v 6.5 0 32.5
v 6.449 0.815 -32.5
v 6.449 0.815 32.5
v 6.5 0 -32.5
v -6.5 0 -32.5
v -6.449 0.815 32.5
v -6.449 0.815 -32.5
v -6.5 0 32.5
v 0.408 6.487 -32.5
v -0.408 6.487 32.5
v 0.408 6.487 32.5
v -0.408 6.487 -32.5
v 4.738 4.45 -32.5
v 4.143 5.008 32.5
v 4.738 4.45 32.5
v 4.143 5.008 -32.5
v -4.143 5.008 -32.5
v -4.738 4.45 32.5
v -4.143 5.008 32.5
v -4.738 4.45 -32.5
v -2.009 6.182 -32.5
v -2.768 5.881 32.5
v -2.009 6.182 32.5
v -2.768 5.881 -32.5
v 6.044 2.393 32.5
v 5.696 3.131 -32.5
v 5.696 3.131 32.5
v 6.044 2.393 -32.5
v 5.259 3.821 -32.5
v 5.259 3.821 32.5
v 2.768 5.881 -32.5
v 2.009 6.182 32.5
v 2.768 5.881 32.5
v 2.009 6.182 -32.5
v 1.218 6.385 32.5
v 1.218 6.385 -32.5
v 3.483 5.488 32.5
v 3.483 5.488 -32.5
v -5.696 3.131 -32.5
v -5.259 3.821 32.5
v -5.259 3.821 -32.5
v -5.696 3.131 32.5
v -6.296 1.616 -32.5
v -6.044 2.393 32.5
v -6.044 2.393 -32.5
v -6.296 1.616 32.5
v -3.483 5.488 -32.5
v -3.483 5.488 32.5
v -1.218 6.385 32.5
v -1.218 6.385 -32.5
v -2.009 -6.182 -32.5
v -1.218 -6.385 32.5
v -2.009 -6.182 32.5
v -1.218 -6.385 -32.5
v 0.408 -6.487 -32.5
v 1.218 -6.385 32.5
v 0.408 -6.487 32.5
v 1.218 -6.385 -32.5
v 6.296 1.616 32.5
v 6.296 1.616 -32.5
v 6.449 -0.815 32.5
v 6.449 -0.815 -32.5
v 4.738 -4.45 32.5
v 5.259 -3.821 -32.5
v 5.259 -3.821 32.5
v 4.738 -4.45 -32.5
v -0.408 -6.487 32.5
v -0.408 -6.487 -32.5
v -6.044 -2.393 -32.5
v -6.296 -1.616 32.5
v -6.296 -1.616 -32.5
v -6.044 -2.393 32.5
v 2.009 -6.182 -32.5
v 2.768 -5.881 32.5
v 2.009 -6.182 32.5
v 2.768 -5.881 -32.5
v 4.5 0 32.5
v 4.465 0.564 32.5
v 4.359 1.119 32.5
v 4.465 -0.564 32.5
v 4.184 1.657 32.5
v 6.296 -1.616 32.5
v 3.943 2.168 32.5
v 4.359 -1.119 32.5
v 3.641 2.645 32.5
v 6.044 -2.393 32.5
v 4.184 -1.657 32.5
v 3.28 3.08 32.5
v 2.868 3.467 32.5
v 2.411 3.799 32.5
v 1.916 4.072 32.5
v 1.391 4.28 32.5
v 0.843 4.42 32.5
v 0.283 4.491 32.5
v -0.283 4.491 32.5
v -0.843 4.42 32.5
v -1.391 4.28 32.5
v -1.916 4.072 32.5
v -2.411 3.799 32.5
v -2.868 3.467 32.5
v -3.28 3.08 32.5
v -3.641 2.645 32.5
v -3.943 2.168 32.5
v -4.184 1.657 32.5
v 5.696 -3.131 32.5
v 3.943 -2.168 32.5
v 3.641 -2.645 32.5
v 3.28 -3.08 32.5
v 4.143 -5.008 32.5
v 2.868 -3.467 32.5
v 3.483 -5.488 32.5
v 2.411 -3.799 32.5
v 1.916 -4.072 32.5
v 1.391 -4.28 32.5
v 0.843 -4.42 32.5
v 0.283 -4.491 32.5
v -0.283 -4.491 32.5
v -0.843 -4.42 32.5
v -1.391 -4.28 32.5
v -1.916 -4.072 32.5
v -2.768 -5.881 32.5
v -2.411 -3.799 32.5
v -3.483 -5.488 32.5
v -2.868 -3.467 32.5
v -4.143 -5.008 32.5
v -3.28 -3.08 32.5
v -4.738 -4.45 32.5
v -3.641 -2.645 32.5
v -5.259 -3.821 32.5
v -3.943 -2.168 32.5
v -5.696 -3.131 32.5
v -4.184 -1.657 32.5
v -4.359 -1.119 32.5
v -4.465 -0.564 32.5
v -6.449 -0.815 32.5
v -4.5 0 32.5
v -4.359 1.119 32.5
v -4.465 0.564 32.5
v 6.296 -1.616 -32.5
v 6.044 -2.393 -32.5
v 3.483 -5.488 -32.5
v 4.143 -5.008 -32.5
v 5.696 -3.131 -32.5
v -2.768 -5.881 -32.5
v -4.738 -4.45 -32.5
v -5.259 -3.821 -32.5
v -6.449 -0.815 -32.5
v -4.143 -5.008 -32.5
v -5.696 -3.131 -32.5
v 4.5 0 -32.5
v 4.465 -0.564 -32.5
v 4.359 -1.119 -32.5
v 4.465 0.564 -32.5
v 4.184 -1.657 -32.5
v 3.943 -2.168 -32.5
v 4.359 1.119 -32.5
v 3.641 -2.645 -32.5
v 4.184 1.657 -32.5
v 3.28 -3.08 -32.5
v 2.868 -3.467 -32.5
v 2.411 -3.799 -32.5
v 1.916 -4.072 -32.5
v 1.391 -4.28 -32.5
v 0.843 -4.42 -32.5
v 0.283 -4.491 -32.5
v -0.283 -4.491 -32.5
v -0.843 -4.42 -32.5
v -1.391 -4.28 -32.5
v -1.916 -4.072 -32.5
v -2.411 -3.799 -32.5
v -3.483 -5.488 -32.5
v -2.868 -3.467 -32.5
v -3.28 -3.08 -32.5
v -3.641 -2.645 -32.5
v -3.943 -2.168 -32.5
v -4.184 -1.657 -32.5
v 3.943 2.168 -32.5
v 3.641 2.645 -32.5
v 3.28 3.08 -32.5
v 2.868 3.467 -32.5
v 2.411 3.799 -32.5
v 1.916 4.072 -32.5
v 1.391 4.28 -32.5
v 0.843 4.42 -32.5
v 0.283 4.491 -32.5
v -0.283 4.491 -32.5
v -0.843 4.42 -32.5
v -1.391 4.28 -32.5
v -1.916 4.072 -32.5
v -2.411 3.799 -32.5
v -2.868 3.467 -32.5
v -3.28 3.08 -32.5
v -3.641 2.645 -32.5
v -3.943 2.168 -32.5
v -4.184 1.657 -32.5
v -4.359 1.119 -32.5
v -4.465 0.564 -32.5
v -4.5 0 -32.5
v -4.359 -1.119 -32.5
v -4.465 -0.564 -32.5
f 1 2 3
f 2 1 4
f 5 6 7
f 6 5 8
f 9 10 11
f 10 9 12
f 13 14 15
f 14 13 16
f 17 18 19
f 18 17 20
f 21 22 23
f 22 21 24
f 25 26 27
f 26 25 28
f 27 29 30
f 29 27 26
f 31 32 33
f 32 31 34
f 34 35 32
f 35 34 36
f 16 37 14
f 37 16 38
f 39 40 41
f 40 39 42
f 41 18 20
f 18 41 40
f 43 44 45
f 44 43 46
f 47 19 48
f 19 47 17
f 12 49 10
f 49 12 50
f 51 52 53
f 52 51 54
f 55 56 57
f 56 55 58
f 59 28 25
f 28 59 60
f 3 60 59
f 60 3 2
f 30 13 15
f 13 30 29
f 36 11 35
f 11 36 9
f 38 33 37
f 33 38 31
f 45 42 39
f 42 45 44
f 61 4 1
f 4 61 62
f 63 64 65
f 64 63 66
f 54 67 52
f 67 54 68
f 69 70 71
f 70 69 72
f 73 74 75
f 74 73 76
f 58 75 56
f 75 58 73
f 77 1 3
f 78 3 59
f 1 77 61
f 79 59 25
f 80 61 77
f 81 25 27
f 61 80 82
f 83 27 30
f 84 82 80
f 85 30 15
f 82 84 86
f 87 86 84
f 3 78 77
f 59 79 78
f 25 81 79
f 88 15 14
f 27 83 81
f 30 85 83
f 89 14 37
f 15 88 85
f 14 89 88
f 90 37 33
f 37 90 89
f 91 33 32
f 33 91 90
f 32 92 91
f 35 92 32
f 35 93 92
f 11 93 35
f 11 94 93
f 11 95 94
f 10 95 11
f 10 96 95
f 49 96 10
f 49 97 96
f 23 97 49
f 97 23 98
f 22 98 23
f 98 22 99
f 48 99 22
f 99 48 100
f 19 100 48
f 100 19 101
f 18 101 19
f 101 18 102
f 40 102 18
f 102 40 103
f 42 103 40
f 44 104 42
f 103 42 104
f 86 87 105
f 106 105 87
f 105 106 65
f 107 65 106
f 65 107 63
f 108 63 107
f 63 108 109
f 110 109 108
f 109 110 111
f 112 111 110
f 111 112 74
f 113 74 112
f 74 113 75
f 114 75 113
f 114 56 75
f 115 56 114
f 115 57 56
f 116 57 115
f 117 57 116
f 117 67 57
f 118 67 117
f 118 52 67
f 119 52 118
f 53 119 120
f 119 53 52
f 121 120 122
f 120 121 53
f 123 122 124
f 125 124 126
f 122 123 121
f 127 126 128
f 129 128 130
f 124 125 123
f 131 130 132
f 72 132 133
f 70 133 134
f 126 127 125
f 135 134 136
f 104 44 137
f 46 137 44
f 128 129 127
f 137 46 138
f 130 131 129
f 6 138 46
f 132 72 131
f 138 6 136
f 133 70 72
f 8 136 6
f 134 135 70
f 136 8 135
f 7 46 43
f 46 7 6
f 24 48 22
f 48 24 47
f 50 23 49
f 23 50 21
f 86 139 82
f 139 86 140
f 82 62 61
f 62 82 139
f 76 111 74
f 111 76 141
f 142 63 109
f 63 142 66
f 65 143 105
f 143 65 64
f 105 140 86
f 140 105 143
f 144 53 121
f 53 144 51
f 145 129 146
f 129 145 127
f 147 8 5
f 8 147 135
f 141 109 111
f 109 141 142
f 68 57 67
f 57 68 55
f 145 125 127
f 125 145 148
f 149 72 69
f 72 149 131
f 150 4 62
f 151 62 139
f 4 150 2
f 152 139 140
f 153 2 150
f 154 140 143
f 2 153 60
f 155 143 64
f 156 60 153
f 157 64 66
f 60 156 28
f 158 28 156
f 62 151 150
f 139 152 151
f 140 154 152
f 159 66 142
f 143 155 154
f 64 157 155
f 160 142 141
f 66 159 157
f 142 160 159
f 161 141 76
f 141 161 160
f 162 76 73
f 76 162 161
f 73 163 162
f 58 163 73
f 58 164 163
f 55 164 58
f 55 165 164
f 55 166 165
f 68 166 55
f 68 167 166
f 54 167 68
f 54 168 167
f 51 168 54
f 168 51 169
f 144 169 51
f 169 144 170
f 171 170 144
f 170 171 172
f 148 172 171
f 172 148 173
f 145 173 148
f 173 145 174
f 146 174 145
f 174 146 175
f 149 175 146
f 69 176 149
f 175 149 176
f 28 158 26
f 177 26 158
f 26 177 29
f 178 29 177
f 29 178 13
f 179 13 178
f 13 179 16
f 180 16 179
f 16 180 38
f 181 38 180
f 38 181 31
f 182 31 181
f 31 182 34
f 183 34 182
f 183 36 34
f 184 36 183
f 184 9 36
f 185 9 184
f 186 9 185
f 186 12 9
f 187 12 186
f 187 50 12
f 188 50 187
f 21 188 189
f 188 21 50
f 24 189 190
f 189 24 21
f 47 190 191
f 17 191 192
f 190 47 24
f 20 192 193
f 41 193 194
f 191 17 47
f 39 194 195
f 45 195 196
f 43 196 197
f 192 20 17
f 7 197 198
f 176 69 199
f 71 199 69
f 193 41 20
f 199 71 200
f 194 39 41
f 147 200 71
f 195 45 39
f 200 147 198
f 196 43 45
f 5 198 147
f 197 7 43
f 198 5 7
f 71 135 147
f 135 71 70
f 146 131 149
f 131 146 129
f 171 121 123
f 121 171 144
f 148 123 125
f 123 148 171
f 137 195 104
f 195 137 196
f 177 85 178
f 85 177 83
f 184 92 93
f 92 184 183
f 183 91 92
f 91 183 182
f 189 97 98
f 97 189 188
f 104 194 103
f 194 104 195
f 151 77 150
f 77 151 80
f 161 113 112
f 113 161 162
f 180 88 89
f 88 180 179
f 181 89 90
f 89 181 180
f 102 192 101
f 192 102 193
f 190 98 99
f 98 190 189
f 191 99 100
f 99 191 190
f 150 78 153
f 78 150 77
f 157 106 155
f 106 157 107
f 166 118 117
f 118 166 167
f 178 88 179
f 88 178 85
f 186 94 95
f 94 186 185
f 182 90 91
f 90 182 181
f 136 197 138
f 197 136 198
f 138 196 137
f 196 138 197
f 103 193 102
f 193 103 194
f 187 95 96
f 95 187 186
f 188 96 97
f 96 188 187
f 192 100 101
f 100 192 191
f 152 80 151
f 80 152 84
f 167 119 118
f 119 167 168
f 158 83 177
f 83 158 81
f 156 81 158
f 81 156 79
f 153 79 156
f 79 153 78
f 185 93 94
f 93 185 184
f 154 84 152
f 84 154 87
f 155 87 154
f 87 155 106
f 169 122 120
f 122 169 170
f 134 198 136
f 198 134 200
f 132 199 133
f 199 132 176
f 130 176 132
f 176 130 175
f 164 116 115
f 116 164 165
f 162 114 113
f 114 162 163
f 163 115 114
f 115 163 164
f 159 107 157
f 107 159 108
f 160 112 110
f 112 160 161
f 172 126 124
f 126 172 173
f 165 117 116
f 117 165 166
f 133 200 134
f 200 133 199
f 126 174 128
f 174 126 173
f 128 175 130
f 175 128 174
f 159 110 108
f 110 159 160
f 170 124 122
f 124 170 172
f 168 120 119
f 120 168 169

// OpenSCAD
$fn = 50;


difference() {
	union() {
		translate(v = [0, 0, -32.5000000000]) {
			cylinder(h = 65, r = 6.5000000000);
		}
	}
	union() {
		translate(v = [0, 0, -100.0000000000]) {
			cylinder(h = 200, r = 4.5000000000);
		}
	}
}
